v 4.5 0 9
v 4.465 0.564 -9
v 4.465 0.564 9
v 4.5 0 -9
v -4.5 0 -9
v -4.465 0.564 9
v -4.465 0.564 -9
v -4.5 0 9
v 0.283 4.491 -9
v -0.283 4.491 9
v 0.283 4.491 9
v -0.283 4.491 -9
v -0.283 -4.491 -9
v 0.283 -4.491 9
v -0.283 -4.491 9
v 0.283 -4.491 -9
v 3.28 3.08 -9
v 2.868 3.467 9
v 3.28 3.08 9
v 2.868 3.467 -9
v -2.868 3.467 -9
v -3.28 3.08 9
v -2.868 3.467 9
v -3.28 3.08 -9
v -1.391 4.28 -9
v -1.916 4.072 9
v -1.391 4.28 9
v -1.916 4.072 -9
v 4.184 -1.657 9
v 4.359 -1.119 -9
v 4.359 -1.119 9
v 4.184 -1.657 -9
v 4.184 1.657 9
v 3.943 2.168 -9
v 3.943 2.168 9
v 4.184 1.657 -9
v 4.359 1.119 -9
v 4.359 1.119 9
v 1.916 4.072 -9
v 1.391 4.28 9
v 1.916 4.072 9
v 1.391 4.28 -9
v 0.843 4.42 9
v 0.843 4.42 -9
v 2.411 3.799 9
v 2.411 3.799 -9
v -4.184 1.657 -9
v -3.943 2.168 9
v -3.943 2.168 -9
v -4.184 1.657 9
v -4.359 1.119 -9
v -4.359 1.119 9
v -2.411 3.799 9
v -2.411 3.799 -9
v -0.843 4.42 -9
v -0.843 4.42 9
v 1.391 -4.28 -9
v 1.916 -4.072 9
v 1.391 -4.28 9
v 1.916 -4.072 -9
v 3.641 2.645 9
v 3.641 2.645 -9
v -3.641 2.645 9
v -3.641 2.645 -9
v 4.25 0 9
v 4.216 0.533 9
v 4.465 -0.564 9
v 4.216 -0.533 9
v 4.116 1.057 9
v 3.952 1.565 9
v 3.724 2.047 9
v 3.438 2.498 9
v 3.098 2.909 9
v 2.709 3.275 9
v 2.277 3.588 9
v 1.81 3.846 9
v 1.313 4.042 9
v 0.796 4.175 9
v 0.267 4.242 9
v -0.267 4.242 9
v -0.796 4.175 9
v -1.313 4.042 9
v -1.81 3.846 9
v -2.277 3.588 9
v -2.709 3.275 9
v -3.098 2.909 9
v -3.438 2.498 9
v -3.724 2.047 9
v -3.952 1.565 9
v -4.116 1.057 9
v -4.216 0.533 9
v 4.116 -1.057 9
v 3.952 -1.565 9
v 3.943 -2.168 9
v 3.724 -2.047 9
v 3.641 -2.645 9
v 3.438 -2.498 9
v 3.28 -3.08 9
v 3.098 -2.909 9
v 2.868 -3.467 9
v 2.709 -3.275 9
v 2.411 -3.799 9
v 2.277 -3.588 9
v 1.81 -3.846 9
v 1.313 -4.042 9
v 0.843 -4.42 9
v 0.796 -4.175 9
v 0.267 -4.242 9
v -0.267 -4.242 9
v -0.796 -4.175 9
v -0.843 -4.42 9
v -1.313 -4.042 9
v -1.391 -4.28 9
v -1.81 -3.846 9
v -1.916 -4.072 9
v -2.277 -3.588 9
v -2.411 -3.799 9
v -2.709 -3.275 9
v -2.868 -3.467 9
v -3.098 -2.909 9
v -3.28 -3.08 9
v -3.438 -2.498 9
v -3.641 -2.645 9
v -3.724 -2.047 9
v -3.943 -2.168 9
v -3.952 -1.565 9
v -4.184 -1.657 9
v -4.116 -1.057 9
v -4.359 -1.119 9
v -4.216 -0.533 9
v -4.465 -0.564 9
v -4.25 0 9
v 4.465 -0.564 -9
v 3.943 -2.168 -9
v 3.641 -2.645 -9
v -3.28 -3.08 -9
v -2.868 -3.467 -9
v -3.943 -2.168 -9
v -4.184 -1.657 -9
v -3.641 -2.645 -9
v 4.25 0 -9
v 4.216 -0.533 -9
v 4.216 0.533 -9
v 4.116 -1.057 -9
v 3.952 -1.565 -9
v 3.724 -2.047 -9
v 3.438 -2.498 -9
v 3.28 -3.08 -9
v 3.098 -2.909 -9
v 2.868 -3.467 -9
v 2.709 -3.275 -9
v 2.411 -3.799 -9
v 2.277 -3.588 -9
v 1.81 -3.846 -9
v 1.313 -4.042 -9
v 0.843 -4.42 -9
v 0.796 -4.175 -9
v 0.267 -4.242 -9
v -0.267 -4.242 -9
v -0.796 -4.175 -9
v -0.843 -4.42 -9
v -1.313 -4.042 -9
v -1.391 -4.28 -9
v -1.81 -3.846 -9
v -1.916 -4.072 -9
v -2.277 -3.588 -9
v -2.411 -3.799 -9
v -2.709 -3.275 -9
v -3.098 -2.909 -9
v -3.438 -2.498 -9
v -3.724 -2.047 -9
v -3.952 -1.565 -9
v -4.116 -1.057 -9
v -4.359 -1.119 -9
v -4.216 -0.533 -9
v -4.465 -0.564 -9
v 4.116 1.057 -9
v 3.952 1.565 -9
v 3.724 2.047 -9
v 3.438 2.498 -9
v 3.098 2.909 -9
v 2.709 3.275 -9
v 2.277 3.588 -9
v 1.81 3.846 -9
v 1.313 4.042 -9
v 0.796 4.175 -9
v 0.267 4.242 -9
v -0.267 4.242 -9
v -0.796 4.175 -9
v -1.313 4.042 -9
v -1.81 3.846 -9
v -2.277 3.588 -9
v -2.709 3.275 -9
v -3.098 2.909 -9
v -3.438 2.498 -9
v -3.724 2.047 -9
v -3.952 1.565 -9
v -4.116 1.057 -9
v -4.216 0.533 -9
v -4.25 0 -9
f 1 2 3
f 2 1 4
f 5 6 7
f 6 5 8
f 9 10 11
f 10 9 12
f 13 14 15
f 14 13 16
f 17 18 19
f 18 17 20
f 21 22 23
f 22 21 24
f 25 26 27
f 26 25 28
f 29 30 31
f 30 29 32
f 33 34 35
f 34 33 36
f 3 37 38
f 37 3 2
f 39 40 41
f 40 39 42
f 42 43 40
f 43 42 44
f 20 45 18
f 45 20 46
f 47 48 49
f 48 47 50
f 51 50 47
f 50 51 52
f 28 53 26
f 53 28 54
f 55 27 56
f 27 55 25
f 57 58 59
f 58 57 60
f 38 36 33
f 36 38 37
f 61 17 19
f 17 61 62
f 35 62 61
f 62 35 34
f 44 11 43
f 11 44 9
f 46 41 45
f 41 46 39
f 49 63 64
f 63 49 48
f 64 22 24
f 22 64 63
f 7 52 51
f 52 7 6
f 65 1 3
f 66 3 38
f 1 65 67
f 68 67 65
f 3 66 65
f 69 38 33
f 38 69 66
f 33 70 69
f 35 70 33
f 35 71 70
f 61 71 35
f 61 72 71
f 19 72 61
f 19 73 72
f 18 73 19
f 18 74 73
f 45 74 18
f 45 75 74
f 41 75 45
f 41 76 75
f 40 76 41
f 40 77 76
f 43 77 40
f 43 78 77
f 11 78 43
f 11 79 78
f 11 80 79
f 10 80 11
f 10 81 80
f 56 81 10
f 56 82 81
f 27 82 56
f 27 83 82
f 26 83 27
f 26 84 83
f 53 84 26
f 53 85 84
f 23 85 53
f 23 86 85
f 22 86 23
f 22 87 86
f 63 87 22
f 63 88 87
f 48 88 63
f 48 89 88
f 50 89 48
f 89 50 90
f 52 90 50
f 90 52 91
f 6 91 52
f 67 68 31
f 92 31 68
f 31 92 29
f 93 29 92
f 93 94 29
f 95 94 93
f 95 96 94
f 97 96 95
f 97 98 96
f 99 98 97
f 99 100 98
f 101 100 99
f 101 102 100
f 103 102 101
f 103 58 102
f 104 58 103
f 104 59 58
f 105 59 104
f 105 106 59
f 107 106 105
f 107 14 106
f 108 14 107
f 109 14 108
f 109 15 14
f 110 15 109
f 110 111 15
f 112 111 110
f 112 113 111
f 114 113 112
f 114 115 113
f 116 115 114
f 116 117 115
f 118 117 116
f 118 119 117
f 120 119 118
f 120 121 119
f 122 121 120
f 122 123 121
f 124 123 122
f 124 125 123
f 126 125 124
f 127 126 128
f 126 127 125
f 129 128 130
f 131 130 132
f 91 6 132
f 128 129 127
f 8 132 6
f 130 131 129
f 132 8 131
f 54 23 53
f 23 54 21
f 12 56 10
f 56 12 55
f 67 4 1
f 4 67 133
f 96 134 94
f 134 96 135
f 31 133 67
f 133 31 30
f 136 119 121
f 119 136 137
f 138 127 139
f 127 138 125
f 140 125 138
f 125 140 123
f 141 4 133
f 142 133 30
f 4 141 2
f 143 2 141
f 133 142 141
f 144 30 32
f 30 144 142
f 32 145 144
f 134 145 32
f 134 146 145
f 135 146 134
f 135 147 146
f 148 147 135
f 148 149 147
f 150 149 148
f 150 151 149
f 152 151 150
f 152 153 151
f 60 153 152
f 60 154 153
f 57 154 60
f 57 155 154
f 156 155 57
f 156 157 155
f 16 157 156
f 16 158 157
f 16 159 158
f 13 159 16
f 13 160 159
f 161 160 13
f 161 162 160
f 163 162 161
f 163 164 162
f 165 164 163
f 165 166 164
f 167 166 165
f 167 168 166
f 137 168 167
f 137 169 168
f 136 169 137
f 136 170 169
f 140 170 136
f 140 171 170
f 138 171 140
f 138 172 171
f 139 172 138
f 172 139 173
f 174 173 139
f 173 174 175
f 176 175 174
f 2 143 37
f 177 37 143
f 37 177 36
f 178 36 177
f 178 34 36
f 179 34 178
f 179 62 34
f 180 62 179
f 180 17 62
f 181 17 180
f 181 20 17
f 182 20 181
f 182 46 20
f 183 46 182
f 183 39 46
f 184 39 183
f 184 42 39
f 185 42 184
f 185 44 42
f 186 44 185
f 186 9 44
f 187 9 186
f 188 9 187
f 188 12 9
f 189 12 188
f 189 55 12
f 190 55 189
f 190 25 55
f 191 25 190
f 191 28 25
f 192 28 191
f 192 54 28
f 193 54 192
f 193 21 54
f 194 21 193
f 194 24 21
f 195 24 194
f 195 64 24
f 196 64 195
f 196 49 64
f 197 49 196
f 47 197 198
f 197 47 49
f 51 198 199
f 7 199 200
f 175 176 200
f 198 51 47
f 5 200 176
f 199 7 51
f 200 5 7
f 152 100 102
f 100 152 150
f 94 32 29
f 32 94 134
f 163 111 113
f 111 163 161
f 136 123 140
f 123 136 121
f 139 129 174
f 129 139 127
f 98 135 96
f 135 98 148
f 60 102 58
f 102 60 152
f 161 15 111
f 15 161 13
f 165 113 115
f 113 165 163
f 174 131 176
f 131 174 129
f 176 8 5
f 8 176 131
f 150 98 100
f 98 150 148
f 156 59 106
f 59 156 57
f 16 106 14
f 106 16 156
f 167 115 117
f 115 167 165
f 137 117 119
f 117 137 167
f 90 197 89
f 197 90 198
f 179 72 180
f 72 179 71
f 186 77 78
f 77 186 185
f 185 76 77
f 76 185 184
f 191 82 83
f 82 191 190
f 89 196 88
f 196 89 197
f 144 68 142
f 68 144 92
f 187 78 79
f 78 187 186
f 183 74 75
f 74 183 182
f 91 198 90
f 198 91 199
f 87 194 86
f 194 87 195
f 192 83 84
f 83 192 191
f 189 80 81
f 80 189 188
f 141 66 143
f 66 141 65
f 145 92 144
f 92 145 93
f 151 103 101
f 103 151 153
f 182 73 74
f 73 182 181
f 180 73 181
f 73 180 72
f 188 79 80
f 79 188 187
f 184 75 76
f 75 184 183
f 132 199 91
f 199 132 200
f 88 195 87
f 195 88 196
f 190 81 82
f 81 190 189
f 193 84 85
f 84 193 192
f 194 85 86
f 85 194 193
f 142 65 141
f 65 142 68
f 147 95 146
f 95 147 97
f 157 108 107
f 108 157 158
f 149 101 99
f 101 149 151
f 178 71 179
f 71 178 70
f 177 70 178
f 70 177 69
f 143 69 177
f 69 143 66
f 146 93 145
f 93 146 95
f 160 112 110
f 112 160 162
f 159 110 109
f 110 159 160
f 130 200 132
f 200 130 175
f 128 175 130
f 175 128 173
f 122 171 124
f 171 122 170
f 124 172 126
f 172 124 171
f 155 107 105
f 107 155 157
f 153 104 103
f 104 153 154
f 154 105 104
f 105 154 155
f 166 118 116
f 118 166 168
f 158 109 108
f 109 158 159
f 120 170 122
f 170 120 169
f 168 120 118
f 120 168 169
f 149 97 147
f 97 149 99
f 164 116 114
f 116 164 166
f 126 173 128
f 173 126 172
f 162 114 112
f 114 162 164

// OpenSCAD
$fn = 50;


difference() {
	union() {
		translate(v = [0, 0, -9.0000000000]) {
			cylinder(h = 18, r = 4.5000000000);
		}
	}
	union() {
		translate(v = [0, 0, -100.0000000000]) {
			cylinder(h = 200, r = 4.2500000000);
		}
	}
}
